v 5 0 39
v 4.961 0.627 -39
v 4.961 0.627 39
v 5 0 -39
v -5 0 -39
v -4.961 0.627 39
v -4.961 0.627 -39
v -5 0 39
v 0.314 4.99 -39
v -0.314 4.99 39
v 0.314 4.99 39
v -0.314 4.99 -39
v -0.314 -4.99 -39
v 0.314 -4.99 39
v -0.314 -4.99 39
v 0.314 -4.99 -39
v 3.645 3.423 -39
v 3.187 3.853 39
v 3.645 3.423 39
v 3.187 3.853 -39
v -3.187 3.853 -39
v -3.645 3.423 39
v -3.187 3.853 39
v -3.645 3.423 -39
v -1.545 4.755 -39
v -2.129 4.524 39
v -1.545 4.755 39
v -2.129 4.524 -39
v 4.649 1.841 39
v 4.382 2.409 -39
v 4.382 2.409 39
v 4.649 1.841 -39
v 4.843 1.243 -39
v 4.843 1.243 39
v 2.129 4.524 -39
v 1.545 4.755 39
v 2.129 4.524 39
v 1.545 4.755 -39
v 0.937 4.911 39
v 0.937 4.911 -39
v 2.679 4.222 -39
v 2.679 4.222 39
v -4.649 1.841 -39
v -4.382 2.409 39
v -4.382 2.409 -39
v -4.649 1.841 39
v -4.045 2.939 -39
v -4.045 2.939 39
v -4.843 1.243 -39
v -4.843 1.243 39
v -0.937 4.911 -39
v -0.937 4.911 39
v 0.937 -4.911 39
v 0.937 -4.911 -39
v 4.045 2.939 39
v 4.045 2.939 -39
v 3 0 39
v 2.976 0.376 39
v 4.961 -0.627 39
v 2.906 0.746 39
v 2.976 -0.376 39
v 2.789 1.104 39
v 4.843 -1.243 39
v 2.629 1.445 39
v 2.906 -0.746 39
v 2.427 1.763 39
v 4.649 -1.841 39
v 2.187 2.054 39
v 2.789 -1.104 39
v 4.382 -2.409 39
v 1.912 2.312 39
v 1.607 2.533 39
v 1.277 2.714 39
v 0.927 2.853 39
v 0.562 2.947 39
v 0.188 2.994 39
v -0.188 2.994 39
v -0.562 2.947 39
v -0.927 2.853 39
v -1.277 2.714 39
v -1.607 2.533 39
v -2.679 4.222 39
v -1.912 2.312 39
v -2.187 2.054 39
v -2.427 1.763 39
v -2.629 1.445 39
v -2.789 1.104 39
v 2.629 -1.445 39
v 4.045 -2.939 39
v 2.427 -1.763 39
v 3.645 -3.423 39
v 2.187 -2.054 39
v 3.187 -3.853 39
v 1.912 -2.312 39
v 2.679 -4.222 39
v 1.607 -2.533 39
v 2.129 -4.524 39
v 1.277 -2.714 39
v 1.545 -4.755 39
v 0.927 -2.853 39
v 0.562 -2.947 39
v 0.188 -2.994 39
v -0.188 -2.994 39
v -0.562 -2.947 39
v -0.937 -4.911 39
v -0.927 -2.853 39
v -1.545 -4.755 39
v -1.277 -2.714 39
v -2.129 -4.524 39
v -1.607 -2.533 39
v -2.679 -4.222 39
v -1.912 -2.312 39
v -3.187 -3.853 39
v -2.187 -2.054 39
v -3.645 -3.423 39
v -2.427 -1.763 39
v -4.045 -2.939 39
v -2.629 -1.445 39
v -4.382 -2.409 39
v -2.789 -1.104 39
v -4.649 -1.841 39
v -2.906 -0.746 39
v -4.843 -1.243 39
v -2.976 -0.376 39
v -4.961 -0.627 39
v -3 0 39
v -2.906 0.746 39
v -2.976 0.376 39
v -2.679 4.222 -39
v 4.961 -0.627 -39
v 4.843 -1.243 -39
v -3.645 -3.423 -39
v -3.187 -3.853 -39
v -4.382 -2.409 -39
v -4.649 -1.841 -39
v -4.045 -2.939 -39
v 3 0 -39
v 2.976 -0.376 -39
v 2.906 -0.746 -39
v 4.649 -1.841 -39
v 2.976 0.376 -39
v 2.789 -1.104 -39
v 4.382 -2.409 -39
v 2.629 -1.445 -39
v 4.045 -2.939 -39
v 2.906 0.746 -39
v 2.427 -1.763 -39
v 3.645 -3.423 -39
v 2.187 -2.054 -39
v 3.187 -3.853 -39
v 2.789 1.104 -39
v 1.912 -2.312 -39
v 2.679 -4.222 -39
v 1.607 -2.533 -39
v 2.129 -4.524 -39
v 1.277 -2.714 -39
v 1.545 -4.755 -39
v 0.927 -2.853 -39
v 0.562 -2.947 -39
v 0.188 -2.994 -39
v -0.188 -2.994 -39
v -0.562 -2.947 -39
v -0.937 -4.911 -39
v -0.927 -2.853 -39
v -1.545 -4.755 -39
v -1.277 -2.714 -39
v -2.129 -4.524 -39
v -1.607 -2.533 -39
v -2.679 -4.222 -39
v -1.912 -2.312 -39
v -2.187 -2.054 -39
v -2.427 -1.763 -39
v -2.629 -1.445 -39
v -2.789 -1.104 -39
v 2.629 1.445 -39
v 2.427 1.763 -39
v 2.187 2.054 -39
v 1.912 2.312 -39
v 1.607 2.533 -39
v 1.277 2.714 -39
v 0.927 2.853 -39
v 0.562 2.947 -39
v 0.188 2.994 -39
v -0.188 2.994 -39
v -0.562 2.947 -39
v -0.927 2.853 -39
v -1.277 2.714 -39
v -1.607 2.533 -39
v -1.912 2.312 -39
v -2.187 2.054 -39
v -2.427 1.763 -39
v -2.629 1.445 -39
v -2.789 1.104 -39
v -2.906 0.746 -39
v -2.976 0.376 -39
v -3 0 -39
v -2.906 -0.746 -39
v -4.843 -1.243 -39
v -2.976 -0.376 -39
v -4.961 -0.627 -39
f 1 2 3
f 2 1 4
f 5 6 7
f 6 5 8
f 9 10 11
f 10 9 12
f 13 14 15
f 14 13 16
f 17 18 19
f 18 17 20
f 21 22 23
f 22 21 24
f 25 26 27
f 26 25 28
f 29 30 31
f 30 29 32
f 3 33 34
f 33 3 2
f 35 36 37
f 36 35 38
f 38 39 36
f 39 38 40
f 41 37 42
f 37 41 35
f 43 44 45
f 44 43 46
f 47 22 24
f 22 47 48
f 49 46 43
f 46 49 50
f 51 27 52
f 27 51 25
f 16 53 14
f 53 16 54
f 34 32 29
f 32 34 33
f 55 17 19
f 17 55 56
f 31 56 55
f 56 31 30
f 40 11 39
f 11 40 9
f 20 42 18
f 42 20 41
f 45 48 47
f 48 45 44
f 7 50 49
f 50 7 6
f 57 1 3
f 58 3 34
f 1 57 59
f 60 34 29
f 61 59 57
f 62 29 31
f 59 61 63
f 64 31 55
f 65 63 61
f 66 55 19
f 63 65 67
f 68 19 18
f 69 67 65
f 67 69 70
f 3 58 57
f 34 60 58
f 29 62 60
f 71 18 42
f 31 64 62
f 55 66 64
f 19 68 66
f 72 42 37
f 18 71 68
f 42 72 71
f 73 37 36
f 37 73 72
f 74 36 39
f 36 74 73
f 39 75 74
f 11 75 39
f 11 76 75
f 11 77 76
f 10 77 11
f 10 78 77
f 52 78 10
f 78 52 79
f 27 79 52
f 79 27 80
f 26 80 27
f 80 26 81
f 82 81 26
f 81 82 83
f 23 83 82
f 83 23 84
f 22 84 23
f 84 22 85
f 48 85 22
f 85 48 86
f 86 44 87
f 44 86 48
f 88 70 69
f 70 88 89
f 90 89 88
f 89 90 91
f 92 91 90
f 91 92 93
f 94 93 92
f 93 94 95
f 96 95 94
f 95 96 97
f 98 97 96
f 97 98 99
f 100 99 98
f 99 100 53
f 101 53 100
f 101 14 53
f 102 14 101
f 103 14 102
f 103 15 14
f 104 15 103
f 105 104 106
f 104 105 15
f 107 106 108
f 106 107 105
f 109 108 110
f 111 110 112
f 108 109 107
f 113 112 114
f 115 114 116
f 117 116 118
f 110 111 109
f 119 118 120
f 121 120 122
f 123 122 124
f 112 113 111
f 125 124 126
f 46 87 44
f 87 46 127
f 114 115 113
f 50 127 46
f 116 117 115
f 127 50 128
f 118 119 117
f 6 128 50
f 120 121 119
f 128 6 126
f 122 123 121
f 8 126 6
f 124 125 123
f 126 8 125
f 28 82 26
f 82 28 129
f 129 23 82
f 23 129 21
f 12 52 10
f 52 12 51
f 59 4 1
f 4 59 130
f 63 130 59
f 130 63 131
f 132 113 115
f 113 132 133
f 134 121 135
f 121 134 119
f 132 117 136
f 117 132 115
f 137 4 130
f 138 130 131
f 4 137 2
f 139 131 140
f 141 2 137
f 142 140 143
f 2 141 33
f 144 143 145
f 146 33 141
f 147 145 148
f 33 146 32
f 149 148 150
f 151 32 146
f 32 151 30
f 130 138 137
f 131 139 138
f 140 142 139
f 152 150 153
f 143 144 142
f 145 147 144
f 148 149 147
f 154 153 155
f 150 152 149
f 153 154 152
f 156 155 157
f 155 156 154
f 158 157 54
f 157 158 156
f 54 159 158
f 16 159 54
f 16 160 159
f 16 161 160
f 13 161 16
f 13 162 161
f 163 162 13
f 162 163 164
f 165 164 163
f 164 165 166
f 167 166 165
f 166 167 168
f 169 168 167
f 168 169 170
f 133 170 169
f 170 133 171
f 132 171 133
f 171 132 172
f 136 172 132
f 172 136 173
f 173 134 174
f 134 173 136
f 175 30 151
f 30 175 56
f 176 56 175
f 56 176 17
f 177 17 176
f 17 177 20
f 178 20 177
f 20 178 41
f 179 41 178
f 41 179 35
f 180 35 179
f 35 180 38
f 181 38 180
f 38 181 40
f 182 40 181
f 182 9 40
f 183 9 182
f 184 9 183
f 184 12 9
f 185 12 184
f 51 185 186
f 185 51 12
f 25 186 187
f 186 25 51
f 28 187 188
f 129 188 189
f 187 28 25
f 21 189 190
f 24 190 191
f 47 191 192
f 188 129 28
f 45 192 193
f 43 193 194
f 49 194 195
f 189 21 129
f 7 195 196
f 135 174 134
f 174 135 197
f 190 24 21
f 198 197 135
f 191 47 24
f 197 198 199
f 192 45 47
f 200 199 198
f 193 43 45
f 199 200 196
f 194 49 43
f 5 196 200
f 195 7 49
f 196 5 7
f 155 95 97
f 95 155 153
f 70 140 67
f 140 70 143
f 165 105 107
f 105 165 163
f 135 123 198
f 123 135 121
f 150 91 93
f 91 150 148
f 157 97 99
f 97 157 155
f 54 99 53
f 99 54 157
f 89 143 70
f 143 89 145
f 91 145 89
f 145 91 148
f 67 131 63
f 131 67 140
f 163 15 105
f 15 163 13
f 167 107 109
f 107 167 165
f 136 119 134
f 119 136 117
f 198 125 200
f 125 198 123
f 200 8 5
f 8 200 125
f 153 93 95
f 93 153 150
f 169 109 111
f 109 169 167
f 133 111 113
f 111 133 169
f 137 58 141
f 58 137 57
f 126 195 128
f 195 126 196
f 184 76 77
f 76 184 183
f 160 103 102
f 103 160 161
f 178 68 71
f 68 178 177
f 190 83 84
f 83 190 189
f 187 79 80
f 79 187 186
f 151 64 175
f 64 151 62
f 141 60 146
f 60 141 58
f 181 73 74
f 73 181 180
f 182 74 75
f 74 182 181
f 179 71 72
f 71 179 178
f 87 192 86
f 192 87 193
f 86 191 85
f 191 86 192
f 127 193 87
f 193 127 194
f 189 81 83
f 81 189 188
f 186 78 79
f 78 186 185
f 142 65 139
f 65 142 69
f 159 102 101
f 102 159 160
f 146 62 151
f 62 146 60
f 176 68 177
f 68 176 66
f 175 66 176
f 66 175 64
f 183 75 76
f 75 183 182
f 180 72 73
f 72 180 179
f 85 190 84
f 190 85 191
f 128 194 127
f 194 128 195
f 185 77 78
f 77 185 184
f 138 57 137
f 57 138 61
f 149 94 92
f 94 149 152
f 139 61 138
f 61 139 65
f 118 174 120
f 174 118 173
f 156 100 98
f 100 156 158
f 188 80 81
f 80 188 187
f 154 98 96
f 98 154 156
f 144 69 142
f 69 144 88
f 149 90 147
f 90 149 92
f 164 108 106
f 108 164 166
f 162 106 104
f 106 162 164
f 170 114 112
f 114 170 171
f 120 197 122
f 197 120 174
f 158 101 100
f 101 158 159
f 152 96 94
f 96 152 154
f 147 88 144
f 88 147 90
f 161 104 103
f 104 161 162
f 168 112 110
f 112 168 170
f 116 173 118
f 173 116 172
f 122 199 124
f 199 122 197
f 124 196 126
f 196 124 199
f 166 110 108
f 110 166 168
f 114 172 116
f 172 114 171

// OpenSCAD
$fn = 50;


difference() {
	union() {
		translate(v = [0, 0, -39.0000000000]) {
			cylinder(h = 78, r = 5.0000000000);
		}
	}
	union() {
		translate(v = [0, 0, -100.0000000000]) {
			cylinder(h = 200, r = 3);
		}
	}
}
